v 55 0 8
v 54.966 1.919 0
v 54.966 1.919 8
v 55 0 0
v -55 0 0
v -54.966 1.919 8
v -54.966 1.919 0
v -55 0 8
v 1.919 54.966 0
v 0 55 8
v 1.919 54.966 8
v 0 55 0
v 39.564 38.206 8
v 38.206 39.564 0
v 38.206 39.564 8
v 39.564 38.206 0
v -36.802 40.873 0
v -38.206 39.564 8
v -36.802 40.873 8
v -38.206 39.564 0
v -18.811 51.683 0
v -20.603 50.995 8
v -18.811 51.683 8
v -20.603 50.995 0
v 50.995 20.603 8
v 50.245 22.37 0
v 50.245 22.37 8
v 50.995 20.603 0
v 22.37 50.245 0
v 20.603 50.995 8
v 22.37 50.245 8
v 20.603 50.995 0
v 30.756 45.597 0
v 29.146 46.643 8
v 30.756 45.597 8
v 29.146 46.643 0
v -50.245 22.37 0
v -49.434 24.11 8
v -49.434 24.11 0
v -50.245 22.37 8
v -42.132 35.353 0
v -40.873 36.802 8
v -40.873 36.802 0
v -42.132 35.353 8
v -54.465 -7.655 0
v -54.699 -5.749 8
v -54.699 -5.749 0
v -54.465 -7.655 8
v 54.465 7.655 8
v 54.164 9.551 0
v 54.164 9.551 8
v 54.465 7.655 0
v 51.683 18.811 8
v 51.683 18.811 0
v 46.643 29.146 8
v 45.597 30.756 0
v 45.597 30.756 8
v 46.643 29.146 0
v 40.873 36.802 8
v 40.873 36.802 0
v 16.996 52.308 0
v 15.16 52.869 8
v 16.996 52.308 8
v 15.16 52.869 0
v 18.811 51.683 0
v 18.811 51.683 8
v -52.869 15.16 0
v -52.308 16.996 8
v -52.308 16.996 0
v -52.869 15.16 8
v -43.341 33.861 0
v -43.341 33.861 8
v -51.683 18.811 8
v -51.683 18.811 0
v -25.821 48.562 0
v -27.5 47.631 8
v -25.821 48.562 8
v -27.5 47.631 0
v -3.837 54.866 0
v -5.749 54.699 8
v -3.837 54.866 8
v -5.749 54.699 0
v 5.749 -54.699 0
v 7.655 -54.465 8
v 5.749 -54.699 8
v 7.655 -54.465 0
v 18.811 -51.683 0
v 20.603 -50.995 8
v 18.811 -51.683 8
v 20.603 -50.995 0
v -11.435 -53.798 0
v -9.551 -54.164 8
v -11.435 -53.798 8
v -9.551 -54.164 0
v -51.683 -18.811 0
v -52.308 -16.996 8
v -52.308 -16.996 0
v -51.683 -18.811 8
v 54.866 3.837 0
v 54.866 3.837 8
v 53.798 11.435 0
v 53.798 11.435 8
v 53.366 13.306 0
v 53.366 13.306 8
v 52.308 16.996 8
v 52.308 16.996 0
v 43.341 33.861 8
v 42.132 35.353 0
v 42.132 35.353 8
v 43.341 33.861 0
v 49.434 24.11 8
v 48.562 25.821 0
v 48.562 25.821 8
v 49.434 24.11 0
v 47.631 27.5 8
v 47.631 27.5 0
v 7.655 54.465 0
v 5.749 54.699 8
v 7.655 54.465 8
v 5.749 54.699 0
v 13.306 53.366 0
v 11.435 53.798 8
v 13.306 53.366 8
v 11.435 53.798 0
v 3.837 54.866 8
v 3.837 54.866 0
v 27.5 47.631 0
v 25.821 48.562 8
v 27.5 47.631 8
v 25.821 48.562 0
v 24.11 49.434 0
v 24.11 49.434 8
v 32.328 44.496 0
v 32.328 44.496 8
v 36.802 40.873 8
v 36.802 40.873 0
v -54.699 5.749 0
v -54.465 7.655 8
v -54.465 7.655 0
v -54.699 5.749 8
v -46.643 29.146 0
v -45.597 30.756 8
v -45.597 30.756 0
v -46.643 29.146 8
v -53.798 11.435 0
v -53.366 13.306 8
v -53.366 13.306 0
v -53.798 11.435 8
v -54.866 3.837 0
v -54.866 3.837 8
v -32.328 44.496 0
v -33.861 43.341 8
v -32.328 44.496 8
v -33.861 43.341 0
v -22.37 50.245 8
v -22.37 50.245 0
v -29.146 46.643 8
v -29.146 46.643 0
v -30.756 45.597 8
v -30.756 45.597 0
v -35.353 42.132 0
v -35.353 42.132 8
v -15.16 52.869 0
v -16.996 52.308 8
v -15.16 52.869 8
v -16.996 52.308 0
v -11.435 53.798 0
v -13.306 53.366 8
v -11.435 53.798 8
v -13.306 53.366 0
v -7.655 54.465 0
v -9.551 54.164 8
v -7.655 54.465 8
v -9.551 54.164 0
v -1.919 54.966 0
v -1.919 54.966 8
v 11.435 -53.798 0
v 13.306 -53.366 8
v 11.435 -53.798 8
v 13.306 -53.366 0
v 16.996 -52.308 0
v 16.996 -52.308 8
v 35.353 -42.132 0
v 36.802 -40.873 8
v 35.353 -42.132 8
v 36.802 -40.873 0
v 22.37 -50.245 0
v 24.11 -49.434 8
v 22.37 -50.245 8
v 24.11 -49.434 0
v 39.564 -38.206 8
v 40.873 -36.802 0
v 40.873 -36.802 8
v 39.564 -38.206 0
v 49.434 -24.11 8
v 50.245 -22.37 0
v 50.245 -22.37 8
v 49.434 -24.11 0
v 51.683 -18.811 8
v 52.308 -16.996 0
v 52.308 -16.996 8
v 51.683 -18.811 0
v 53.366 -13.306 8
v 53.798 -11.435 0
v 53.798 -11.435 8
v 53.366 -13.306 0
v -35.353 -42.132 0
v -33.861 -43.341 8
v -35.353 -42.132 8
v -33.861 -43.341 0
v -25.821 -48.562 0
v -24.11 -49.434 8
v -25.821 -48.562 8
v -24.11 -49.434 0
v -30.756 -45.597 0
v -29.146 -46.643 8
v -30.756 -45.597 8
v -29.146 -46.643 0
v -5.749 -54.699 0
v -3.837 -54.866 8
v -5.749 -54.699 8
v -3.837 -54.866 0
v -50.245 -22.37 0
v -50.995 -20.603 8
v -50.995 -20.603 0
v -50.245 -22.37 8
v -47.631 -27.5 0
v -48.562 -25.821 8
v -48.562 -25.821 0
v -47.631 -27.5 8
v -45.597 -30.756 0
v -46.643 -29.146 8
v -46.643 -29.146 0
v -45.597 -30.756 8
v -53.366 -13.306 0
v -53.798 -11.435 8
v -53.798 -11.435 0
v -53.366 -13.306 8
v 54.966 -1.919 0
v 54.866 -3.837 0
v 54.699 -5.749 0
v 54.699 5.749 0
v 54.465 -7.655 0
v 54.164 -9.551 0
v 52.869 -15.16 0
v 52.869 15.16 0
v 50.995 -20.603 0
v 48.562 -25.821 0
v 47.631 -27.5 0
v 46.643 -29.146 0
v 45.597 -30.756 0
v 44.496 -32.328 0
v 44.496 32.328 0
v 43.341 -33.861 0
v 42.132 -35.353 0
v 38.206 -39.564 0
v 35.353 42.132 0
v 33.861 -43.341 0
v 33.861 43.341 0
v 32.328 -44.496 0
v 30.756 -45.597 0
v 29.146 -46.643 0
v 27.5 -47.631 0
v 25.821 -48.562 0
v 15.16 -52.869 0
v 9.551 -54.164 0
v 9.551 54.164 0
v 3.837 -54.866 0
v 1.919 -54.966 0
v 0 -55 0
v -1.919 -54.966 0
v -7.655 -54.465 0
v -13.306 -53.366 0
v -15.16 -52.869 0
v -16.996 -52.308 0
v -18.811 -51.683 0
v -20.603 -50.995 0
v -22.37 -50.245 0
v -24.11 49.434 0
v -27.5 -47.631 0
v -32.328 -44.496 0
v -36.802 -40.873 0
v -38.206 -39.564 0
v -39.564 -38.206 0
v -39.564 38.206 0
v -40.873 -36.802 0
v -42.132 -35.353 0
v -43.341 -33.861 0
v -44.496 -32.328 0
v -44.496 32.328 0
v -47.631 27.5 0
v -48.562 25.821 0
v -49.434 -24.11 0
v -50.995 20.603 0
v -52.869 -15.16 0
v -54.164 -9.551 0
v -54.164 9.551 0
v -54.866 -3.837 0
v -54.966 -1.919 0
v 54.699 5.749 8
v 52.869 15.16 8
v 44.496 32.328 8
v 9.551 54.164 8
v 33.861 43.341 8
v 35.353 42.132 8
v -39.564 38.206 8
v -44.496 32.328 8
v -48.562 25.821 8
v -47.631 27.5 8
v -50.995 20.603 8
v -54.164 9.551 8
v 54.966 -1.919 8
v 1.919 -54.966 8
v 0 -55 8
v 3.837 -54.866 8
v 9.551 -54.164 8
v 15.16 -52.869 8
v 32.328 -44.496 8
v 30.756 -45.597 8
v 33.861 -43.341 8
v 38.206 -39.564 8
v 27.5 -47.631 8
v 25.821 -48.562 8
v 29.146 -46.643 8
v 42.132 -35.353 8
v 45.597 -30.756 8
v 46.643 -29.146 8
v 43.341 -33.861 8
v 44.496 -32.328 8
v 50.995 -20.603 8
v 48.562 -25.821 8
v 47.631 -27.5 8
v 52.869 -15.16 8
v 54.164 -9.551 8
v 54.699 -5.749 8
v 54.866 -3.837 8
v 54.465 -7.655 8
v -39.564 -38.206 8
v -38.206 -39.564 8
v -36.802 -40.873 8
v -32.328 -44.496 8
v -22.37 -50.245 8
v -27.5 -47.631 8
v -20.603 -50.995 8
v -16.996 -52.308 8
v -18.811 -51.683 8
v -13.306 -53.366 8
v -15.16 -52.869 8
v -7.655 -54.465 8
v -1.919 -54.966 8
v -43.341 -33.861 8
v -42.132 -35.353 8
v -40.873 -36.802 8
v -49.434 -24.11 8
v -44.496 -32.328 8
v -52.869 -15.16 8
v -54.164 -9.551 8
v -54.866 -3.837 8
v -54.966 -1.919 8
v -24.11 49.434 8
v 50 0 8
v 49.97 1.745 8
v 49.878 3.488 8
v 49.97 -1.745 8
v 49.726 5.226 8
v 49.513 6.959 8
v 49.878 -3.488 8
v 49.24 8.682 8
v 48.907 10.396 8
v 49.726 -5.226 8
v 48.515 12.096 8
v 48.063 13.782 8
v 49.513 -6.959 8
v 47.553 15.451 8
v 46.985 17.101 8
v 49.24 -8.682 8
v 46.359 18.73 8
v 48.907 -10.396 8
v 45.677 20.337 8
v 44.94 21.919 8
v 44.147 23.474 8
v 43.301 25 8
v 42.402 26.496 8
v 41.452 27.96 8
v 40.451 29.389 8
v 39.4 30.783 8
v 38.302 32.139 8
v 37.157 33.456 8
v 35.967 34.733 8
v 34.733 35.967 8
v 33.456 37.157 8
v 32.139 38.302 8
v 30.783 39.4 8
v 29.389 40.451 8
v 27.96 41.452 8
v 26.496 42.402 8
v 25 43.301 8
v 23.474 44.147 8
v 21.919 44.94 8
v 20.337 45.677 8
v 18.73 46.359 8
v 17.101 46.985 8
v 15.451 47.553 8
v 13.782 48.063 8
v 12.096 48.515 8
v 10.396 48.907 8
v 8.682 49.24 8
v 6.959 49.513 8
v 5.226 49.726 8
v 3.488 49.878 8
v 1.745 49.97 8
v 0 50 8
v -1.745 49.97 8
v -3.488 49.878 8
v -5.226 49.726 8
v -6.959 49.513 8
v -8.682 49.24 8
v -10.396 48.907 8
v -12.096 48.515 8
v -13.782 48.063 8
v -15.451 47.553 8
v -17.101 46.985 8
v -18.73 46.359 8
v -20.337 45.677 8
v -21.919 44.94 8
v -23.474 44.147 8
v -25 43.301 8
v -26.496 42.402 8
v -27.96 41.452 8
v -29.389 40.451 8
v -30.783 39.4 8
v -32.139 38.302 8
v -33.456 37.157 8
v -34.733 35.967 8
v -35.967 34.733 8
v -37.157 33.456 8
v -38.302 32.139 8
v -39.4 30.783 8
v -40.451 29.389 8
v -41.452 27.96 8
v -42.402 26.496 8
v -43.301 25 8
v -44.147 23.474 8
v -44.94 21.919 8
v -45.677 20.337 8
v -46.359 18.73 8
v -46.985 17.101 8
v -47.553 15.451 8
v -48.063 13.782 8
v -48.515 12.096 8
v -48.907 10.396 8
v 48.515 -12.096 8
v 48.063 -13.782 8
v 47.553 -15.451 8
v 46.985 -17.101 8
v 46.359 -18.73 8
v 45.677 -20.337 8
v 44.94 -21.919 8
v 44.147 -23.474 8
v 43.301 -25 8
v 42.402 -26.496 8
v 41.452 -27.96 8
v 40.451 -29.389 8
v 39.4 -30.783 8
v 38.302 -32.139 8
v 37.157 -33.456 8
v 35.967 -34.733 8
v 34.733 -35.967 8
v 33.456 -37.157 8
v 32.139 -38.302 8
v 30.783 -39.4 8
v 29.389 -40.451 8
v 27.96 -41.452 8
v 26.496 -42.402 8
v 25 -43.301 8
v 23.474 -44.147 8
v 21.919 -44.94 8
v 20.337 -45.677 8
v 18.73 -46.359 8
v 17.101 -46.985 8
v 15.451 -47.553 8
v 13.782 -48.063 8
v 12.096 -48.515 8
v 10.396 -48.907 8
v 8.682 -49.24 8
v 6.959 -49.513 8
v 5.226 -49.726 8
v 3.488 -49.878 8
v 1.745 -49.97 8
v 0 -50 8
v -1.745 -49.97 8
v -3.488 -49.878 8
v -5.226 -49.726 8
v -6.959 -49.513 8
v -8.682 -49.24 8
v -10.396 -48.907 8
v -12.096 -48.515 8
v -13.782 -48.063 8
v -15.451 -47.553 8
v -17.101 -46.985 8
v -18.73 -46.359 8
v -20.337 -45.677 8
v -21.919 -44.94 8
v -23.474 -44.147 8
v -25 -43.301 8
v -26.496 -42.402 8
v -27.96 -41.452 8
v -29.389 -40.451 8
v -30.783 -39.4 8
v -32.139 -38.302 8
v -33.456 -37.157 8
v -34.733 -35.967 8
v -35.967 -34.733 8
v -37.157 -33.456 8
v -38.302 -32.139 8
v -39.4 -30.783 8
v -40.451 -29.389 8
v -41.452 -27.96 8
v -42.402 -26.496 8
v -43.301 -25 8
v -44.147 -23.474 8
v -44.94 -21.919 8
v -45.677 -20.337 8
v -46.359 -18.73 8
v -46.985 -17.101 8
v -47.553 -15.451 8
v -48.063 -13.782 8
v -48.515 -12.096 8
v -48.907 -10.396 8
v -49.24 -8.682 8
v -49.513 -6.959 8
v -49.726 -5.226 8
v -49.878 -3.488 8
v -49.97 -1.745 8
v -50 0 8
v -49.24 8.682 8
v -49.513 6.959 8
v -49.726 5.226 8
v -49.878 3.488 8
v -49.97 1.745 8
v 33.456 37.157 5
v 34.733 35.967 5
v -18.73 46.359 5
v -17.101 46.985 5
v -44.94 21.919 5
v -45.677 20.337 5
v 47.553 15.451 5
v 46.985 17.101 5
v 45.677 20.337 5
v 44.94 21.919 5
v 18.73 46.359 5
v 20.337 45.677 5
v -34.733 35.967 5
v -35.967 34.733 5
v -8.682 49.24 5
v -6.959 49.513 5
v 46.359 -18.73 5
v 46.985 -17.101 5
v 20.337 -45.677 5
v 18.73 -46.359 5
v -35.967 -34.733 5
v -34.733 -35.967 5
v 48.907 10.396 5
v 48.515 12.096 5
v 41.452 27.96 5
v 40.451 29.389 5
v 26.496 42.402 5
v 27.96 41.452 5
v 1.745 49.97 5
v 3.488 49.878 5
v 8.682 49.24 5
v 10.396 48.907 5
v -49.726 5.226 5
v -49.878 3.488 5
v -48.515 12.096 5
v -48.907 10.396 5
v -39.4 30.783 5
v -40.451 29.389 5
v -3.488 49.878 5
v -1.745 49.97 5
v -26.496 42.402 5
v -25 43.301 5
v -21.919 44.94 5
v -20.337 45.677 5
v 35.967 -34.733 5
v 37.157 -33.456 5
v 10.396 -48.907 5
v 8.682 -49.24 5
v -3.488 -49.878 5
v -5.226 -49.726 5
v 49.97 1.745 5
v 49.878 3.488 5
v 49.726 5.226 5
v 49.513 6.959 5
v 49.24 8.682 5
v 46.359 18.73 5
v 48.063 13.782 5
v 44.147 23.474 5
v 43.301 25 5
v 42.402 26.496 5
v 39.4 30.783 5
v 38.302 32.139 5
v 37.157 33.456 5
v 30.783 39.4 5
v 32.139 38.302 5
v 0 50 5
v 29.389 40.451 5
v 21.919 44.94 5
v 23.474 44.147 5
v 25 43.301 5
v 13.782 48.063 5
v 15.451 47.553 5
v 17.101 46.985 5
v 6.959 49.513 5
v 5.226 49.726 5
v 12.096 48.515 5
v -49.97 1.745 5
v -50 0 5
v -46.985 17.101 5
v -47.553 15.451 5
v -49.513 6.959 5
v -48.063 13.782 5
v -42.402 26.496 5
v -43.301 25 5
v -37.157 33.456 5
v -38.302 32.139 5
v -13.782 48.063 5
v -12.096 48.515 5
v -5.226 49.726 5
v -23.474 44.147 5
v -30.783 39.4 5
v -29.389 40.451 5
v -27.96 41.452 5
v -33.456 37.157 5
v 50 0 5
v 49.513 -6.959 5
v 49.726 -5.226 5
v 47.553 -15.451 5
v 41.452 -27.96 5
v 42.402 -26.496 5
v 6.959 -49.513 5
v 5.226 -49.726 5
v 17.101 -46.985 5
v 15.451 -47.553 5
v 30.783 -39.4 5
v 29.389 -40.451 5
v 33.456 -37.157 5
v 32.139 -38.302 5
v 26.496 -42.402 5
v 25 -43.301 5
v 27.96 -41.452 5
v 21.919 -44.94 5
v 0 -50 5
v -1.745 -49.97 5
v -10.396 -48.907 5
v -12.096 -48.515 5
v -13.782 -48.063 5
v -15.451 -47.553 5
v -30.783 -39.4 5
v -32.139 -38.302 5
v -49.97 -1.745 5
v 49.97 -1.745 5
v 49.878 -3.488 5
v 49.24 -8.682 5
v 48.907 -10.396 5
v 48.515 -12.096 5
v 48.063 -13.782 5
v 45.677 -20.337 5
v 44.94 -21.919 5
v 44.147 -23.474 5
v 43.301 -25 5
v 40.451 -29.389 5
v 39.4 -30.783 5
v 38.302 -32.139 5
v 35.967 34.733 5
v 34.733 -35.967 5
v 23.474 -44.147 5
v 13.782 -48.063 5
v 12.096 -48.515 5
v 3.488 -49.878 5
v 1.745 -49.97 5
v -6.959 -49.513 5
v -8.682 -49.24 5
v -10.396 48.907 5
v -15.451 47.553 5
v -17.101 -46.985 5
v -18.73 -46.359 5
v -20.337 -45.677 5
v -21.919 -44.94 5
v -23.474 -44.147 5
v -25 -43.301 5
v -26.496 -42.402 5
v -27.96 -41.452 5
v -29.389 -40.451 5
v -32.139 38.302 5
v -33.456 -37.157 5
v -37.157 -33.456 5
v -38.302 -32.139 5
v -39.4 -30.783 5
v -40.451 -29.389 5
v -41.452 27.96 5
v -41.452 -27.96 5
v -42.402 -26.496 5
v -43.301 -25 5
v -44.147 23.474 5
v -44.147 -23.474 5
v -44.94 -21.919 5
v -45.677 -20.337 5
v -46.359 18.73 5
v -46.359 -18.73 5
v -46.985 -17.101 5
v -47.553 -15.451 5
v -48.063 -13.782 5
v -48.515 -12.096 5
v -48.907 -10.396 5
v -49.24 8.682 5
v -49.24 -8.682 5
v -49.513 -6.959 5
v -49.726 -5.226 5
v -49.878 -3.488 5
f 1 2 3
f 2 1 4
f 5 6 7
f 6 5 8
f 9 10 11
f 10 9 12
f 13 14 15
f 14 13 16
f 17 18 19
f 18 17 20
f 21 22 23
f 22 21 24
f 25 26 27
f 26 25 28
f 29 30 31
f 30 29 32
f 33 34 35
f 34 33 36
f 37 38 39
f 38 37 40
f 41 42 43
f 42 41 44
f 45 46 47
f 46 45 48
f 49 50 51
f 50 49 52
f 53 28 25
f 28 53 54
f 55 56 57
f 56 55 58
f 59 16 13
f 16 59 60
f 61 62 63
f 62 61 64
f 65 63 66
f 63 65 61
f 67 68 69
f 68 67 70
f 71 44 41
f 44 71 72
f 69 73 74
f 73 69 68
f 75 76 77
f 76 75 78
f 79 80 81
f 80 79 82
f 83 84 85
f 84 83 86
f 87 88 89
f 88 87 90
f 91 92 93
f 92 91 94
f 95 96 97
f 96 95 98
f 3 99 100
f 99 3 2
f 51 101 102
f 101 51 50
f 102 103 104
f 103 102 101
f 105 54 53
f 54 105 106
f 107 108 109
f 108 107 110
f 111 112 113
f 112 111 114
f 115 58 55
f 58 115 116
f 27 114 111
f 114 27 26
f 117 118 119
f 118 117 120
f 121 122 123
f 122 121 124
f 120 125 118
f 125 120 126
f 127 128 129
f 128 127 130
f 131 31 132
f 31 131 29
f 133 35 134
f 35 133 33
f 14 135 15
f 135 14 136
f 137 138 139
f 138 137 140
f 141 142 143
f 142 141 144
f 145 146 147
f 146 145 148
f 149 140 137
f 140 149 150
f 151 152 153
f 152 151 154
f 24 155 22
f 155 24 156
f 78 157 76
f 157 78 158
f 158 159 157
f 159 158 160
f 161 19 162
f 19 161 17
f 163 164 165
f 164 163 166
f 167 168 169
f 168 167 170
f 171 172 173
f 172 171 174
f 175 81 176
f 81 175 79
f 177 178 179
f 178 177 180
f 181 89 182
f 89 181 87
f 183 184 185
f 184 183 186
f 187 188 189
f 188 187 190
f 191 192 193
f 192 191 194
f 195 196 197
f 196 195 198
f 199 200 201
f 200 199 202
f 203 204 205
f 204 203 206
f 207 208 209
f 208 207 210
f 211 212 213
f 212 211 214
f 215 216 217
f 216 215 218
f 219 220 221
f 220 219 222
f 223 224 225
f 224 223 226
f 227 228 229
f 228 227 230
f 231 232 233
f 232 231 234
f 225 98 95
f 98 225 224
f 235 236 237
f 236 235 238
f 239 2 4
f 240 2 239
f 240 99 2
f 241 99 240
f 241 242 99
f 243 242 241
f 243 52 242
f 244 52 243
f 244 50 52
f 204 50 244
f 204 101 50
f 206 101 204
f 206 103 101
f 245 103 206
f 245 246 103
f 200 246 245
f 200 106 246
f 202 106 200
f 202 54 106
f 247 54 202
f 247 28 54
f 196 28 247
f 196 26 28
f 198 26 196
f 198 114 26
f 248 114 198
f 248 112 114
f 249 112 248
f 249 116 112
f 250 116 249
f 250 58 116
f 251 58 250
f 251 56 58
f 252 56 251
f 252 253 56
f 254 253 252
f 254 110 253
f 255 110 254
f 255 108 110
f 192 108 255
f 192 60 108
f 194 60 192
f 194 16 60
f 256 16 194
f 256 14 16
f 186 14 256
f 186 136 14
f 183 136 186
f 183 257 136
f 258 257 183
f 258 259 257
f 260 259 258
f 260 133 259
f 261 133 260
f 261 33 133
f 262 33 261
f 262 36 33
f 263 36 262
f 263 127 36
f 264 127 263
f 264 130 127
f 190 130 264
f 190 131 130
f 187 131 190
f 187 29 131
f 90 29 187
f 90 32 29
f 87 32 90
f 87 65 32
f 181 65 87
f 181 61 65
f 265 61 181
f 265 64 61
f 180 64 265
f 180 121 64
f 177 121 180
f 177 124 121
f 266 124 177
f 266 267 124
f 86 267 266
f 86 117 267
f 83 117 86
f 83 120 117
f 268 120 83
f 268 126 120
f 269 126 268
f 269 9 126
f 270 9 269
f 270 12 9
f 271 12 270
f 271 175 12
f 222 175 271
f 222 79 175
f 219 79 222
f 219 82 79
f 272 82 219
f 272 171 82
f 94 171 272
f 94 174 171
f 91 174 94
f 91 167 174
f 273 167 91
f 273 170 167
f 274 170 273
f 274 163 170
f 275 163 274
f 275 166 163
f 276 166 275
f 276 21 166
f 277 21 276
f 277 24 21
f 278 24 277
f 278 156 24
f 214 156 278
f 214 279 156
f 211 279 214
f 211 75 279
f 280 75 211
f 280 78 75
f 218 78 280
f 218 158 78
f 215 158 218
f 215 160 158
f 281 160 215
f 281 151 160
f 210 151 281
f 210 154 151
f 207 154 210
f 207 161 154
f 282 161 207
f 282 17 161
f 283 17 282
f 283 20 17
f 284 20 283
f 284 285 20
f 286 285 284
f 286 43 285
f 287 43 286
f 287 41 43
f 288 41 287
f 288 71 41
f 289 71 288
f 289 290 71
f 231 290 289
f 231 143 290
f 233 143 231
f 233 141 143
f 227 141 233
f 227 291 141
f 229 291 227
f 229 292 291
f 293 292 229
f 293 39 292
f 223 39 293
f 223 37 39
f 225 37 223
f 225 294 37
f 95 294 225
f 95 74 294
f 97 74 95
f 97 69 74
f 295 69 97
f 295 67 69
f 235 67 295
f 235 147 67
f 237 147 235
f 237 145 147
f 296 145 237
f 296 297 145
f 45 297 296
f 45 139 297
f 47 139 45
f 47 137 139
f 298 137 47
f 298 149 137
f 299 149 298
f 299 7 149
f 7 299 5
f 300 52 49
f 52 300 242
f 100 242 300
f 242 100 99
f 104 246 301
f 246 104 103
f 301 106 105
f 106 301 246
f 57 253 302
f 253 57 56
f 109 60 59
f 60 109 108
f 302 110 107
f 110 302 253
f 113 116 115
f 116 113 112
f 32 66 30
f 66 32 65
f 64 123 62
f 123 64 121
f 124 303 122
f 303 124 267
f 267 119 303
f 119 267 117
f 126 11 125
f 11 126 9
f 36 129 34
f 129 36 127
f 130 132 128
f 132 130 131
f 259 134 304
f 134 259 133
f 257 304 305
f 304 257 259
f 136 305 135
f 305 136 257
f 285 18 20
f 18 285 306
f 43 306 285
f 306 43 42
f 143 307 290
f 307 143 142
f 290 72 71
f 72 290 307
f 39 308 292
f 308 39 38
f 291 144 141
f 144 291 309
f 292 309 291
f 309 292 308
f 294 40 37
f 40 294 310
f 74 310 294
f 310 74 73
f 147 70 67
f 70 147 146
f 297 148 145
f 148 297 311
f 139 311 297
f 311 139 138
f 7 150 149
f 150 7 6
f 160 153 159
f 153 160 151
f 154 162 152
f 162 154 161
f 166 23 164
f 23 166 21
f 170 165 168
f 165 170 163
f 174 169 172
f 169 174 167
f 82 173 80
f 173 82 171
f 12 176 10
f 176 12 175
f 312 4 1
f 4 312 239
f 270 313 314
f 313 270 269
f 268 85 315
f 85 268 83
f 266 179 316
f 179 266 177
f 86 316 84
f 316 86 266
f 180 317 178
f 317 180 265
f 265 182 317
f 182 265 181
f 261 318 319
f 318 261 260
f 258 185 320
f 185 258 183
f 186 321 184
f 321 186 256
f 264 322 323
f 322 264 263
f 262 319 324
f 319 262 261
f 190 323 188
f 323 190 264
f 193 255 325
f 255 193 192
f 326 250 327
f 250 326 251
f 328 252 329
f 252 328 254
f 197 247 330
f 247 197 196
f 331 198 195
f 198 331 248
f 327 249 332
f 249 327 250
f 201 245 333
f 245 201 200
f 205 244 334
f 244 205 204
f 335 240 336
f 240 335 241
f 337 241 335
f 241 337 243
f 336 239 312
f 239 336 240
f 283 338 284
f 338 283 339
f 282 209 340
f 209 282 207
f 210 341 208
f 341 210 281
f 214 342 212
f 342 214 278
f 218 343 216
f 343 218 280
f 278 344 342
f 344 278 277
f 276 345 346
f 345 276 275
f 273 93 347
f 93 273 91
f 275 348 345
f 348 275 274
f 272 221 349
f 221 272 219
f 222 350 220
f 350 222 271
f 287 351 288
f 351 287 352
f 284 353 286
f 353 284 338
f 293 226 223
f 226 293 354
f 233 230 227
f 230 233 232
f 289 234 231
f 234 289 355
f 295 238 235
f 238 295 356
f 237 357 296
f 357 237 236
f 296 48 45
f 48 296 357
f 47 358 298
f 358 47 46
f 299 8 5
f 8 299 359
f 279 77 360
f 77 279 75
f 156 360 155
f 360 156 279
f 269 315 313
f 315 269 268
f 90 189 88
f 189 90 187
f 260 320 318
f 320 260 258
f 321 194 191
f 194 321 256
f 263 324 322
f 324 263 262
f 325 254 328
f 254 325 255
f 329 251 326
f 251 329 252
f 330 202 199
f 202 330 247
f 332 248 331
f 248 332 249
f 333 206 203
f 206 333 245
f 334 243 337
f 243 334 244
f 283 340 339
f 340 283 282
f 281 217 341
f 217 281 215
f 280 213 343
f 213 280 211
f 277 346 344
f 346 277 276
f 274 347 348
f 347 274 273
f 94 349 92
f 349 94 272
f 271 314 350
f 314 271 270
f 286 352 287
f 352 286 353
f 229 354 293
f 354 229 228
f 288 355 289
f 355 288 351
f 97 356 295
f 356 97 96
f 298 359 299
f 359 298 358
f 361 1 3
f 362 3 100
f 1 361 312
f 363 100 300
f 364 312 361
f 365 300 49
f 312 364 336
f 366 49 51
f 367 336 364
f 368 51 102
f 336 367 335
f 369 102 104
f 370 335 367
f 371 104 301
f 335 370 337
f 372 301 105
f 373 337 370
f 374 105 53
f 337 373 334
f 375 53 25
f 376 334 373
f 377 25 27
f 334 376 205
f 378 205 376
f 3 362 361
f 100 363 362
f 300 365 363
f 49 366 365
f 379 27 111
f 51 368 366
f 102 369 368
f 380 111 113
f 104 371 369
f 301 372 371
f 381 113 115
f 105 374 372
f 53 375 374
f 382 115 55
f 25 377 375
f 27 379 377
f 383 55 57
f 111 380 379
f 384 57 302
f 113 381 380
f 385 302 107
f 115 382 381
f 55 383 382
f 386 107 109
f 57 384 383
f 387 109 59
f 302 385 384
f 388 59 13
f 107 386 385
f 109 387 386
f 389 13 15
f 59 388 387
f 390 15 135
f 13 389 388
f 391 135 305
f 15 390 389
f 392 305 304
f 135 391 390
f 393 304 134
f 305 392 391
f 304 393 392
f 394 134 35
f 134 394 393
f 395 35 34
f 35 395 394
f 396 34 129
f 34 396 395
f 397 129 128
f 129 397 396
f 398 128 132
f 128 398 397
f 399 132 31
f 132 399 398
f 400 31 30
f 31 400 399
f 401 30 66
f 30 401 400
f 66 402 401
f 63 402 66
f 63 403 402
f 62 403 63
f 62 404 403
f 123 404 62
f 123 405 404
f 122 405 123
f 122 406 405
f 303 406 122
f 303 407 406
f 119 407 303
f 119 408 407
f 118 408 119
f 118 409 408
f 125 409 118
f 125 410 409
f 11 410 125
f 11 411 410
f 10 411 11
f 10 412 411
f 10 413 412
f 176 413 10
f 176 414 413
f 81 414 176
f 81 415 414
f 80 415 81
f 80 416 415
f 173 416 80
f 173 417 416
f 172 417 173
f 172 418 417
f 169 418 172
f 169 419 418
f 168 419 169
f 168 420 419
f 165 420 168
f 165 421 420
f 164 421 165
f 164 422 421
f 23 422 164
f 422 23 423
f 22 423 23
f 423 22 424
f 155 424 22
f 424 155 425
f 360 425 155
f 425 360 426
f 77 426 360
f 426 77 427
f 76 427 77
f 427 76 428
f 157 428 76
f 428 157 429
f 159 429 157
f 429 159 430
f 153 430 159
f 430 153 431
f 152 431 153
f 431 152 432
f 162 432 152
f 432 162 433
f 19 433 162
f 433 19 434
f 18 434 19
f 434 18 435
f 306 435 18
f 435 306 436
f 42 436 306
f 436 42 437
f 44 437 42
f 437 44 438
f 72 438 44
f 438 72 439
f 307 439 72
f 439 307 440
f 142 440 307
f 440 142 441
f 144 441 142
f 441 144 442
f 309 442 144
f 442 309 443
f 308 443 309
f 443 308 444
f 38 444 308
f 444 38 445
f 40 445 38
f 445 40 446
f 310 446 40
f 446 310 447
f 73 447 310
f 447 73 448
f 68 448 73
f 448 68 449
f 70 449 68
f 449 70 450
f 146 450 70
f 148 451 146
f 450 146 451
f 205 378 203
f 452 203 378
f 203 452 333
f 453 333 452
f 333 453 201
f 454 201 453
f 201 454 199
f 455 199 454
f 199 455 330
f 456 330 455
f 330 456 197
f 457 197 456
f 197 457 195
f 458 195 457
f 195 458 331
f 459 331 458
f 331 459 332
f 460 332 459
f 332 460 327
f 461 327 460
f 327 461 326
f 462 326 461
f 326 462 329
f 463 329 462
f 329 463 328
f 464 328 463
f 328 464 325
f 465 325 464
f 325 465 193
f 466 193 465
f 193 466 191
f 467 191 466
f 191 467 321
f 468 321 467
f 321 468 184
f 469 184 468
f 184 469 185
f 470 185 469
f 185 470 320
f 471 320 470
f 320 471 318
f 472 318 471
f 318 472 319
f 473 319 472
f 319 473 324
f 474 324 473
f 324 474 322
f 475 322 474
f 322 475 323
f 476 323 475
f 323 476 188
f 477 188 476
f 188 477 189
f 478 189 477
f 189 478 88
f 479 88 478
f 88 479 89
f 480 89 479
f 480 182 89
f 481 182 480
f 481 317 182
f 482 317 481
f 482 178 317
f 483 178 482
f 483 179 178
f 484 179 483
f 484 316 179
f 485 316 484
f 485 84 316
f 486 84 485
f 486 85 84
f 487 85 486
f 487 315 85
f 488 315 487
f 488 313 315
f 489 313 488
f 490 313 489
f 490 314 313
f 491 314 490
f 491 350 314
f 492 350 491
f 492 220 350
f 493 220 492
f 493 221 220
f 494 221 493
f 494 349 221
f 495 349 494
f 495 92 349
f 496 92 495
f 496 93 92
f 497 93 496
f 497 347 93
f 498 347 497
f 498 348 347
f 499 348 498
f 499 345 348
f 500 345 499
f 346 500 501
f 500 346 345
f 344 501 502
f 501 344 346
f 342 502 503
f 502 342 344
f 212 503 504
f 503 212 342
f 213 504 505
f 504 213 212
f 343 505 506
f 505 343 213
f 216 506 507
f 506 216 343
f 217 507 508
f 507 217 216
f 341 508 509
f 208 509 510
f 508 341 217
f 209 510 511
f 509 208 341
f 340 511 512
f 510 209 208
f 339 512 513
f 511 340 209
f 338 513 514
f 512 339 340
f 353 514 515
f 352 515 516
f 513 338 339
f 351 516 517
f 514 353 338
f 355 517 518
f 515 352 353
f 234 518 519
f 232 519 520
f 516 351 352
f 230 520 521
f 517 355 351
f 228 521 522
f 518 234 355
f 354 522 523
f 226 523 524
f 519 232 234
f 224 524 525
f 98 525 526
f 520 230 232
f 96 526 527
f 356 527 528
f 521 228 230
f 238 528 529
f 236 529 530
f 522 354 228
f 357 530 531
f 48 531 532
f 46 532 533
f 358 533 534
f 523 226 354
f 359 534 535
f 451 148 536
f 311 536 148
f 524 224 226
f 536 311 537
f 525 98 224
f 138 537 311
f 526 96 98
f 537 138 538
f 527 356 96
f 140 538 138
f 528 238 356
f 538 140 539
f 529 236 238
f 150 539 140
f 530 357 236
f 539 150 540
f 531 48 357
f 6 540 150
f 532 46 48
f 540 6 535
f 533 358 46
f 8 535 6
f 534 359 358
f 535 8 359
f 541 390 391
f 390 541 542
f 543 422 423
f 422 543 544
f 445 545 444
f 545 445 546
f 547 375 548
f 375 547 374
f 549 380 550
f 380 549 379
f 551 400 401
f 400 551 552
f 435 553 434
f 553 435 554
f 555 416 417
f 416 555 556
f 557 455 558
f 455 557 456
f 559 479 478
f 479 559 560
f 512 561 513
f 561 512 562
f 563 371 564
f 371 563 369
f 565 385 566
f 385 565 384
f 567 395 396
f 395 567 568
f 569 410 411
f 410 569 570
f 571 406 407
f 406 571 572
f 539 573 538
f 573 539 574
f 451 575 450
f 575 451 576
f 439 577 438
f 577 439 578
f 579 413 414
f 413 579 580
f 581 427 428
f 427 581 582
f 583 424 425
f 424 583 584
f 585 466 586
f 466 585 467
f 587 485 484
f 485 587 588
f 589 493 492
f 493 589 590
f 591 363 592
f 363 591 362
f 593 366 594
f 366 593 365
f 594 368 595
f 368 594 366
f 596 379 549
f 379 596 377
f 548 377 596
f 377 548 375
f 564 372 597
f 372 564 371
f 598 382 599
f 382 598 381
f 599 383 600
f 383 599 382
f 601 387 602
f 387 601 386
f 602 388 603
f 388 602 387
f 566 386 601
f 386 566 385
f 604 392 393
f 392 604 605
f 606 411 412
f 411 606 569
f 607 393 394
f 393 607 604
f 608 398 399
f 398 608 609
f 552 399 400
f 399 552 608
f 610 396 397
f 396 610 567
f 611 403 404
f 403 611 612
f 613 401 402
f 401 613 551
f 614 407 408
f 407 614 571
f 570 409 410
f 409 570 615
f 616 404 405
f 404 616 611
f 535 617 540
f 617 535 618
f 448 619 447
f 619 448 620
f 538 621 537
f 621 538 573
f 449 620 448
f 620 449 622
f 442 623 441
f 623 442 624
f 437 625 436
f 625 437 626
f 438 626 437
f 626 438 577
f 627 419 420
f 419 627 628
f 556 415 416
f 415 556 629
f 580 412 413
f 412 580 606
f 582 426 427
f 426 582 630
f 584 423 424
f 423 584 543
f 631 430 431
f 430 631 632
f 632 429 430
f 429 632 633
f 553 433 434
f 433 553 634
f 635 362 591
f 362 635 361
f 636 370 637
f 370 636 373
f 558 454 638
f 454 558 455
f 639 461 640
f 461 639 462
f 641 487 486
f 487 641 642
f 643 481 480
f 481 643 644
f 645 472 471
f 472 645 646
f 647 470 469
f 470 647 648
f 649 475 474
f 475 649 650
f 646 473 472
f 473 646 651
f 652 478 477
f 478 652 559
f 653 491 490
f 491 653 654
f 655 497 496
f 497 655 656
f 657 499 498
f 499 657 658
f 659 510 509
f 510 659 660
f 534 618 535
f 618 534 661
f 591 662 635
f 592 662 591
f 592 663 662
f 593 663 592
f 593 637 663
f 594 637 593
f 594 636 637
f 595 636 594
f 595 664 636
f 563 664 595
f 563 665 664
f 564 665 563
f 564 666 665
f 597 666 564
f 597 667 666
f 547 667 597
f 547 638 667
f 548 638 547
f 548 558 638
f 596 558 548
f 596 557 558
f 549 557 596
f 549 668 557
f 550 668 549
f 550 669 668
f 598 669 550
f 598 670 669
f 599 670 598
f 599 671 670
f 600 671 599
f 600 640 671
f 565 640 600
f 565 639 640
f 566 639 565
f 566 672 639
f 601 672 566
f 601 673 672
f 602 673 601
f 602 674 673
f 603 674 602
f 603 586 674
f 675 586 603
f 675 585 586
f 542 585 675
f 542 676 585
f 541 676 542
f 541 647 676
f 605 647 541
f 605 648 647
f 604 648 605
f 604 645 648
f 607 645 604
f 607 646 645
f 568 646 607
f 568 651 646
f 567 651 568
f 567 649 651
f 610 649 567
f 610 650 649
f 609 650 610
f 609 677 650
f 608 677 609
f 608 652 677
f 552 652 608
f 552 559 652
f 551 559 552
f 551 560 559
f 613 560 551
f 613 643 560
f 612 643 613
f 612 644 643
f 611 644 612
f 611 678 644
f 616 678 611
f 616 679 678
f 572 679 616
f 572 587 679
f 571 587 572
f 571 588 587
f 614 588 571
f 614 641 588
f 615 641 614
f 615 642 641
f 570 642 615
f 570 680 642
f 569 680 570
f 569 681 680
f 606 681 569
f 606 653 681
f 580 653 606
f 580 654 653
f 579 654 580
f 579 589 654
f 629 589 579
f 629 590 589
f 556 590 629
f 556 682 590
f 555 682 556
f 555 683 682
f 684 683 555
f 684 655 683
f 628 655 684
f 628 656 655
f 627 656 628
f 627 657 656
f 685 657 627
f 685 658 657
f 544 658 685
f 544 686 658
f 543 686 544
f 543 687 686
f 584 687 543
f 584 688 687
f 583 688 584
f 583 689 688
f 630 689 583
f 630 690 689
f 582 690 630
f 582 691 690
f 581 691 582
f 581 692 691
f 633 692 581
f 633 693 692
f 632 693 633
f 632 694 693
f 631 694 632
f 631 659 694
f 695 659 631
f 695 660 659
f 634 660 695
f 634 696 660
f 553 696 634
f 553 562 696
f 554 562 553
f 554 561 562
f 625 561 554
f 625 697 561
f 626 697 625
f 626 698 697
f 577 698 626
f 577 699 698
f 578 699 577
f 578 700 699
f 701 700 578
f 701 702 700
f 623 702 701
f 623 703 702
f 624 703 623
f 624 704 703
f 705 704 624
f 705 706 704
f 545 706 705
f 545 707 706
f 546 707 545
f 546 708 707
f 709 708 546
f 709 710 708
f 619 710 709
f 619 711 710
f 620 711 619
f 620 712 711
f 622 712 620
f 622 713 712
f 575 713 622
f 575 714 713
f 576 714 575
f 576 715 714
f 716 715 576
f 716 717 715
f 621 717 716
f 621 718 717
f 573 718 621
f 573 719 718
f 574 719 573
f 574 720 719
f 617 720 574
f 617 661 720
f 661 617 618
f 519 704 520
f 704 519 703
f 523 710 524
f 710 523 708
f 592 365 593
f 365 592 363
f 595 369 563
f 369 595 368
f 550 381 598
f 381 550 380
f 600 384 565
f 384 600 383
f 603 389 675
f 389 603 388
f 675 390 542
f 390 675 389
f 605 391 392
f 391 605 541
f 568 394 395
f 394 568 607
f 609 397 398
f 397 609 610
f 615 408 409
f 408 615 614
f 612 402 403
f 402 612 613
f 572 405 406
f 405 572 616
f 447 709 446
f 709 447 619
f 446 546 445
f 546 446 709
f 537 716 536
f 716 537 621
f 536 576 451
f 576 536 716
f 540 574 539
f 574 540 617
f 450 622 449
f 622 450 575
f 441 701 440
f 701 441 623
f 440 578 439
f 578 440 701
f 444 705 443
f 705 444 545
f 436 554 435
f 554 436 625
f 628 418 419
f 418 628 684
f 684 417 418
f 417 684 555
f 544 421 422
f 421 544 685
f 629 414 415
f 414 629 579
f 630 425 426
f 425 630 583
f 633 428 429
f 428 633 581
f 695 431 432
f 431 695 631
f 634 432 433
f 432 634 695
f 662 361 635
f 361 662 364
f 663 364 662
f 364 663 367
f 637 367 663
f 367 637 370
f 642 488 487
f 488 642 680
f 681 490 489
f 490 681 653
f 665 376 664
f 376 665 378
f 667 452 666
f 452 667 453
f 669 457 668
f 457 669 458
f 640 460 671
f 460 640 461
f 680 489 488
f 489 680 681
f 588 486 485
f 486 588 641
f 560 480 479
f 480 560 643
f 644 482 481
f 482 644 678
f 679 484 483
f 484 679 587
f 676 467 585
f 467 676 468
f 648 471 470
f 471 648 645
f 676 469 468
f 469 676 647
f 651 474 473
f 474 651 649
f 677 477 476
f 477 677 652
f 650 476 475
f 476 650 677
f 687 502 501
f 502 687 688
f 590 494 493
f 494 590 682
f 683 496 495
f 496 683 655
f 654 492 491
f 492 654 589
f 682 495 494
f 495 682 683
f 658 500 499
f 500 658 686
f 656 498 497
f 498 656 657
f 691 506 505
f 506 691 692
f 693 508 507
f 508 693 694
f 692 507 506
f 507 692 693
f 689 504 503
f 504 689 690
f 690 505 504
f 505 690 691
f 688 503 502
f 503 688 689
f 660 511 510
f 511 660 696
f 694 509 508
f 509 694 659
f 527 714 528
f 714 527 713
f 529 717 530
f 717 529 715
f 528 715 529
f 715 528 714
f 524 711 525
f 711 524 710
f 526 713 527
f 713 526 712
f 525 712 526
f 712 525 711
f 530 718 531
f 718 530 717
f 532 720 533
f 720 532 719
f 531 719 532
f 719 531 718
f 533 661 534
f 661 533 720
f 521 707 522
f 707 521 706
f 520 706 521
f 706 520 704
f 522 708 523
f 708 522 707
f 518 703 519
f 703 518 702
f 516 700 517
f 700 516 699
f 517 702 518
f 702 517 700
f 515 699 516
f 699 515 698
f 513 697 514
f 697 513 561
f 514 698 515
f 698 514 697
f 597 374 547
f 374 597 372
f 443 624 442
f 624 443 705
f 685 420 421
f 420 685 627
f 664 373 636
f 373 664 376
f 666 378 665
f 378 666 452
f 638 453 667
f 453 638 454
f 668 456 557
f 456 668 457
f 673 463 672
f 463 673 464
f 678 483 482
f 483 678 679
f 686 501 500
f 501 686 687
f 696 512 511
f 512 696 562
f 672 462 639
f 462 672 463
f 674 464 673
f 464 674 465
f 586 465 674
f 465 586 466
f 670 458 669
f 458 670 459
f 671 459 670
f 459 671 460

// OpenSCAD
pad = 1; //0.1; //Padding para abrir em cima
brd = 5; //borda - 3mm
hl = brd+3; //3+5; //altura lateral
rt = (100 + (2*brd)) / 2; //raio total + 2* borda_3mm
smooth = 180; //faces do cilindro

difference() {
  color("red")
  cylinder(hl,rt,rt,center=false,$fn=smooth);
    
  color("green")
	translate([0,0,brd])
	cylinder(hl-brd+pad,rt-brd,rt-brd,center=false,$fn=smooth);
}
